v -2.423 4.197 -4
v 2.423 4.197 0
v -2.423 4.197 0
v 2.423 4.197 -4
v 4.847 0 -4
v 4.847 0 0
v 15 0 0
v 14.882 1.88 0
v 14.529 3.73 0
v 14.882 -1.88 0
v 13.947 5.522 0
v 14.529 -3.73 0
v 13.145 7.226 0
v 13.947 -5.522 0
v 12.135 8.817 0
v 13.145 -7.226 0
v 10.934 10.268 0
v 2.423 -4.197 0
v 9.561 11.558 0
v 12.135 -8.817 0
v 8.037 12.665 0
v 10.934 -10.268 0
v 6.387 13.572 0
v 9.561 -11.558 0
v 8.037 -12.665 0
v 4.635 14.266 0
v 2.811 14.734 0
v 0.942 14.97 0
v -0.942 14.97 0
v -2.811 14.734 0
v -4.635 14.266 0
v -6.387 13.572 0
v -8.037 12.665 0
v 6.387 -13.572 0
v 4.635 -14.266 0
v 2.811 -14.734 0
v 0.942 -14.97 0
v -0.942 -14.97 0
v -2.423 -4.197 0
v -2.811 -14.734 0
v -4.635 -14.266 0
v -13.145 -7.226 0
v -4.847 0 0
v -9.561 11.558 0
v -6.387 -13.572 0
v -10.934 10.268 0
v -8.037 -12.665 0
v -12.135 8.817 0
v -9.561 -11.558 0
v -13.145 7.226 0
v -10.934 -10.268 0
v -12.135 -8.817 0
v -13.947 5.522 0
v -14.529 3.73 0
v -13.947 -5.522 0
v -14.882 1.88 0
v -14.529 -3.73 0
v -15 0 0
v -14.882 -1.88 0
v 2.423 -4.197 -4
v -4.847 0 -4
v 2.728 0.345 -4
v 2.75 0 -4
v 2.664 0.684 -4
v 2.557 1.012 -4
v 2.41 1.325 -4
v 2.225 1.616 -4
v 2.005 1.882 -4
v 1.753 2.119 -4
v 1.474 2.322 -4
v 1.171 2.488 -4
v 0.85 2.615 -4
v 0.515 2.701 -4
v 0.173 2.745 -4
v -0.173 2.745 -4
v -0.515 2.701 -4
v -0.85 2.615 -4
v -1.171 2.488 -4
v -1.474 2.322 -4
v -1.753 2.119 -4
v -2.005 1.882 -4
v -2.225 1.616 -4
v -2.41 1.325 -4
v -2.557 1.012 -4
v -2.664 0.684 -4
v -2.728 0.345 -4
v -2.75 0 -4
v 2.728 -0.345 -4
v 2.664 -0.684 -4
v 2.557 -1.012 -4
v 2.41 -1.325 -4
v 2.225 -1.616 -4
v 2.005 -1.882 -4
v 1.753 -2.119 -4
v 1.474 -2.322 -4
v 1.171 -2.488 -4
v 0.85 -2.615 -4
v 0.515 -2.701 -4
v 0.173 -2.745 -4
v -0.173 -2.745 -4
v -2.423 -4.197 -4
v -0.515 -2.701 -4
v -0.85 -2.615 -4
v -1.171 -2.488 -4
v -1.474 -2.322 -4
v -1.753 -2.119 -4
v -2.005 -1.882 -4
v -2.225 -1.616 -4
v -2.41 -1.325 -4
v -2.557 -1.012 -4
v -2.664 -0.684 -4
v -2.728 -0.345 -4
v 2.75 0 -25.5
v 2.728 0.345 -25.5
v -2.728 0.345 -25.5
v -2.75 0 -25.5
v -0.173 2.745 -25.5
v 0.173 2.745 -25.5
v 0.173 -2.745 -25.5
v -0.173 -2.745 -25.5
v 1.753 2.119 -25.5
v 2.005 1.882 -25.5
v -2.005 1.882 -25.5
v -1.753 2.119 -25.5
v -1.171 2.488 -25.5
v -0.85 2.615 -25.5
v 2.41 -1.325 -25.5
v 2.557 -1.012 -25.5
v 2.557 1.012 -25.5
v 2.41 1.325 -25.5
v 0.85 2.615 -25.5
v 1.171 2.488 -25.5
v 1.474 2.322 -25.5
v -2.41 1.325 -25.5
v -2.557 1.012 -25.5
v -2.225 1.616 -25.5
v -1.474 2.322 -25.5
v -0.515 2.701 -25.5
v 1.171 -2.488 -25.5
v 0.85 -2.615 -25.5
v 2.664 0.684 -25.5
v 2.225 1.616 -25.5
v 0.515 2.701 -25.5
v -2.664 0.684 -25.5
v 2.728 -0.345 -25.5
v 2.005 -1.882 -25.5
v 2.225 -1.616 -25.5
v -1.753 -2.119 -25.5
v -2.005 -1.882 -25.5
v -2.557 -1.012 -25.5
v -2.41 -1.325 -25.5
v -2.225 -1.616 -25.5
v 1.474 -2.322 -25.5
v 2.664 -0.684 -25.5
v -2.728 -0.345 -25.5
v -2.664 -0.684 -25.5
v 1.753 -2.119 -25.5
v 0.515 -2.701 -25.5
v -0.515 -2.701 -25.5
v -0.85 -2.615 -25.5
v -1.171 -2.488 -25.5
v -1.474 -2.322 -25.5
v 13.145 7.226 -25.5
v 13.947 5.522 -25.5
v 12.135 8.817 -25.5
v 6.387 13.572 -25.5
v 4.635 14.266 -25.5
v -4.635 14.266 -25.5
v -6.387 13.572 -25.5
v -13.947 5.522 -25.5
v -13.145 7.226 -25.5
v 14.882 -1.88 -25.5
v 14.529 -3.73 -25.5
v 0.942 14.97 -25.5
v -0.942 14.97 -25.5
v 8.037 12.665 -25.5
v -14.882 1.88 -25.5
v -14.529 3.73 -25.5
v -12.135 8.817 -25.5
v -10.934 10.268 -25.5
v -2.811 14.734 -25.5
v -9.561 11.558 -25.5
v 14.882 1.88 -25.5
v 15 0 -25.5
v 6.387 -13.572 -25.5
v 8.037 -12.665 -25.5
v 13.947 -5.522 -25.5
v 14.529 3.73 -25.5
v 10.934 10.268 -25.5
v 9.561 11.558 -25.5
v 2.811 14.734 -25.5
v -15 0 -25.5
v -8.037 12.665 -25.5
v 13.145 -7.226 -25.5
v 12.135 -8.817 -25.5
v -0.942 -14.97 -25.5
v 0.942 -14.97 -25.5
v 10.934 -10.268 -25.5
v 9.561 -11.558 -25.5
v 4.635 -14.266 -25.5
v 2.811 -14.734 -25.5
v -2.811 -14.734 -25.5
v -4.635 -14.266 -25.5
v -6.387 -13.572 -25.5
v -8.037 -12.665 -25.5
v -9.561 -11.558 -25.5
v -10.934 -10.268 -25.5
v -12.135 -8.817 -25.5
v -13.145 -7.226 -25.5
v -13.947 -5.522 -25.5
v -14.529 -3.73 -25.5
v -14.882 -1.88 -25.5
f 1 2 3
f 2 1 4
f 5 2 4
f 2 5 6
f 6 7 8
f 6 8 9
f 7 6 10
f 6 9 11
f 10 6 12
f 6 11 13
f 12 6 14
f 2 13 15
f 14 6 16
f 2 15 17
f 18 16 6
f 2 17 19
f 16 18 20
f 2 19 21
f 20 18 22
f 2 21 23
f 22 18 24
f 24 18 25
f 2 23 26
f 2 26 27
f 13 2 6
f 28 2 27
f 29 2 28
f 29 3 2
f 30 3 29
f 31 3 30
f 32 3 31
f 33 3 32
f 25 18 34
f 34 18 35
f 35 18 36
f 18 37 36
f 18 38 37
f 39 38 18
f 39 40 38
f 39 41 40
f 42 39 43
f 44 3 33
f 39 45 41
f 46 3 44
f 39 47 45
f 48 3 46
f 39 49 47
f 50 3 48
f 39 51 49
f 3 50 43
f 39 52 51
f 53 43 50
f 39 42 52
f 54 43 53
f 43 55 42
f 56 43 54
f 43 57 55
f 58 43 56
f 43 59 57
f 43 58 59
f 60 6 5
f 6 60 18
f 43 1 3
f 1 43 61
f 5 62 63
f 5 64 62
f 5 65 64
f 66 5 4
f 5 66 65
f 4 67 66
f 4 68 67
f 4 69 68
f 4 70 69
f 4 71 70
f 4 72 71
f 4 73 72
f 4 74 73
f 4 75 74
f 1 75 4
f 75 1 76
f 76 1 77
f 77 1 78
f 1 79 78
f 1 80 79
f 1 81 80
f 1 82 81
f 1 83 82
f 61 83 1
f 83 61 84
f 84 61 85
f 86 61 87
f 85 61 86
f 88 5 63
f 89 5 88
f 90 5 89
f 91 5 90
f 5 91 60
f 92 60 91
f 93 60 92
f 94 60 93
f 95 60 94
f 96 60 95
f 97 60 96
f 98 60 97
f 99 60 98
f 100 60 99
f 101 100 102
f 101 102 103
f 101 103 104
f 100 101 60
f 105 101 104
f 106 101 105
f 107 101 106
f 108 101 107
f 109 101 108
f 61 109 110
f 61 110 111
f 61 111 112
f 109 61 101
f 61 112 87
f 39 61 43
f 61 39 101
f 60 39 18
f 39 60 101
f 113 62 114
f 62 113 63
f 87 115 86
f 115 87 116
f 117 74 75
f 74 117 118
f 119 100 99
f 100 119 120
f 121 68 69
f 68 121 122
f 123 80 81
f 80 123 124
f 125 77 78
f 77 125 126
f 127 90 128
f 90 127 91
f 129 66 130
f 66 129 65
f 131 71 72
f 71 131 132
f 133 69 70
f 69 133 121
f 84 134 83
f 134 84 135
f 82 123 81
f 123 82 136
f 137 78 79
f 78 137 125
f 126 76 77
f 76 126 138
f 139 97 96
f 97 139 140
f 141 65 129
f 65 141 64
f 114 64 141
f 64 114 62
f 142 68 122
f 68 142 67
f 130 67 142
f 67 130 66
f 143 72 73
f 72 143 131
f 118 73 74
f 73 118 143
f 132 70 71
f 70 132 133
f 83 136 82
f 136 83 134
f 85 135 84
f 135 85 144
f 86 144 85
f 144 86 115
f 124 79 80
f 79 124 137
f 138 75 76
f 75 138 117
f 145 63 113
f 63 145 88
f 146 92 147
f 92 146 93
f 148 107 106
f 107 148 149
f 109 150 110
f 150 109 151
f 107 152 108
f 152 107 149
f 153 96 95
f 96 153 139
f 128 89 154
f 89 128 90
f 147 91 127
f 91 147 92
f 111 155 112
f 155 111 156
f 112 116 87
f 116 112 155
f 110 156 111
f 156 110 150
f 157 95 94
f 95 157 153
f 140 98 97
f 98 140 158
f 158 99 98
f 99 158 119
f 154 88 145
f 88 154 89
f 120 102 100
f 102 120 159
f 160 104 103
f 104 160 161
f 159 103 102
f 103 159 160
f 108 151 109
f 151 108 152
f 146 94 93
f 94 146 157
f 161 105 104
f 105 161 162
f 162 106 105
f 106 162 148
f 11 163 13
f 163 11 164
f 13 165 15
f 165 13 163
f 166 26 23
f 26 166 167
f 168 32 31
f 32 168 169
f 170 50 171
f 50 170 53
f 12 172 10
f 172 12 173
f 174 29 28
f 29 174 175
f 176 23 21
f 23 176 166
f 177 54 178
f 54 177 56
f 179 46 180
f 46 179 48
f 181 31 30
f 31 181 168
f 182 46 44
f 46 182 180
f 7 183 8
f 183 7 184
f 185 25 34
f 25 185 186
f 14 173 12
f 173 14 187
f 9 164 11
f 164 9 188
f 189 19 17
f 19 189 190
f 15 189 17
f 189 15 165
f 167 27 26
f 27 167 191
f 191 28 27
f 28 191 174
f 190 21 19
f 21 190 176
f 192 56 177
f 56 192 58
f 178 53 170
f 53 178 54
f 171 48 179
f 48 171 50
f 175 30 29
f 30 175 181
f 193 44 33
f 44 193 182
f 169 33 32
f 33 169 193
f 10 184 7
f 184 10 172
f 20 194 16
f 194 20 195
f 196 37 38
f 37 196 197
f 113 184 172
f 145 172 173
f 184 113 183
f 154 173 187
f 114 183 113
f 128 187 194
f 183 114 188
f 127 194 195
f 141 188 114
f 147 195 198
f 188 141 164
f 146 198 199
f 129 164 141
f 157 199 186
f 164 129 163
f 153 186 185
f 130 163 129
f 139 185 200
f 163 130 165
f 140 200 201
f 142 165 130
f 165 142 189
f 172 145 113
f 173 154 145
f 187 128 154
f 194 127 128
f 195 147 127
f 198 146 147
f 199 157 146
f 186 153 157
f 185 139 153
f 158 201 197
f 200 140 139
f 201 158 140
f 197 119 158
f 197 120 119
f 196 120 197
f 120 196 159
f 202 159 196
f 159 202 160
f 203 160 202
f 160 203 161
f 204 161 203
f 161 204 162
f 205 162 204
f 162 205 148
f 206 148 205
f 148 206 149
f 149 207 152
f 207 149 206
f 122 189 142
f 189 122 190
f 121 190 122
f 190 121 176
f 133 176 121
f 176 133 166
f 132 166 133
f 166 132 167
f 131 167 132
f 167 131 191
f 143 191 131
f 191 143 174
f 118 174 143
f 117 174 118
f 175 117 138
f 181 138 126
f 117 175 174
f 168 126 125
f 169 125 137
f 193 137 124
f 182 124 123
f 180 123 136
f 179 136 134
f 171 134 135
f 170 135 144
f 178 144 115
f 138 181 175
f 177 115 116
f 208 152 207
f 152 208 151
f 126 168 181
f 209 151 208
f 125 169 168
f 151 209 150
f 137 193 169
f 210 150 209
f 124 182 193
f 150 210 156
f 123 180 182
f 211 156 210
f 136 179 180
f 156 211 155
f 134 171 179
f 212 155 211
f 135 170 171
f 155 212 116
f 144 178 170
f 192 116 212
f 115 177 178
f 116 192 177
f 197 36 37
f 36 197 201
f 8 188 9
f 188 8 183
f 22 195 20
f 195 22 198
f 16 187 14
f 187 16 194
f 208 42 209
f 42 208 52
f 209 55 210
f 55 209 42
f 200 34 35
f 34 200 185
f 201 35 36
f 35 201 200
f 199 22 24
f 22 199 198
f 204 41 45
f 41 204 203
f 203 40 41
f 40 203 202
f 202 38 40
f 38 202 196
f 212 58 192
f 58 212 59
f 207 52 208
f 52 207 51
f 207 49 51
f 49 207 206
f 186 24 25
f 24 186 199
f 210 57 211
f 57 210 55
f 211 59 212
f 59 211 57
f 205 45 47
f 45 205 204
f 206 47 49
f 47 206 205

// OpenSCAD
$fn = 50;

difference() {
	union() {
		translate(v = [0, 0, -25.5]) {
			cylinder(h = 25.5, r = 15.0);
		}
	}
	union() {
		translate(v = [0, 0, 0]) {
			rotate(a = [0, 0, 0]) {
				difference() {
					union() {
						translate(v = [0, 0, -4]) {
							linear_extrude(height = 4) {
								polygon(points = [[4.8468, 0.0], [2.4234000000000004, 4.197451927062417], [-2.423399999999999, 4.197451927062417], [-4.8468, 5.935618106107392e-16], [-2.423400000000002, -4.197451927062416], [2.423399999999997, -4.197451927062419]]);
							}
						}
					}
					union();
				}
			}
		}
		#translate(v = [0, 0, -100.0]) {
			cylinder(h = 200, r = 2.75);
		}
	}
}
